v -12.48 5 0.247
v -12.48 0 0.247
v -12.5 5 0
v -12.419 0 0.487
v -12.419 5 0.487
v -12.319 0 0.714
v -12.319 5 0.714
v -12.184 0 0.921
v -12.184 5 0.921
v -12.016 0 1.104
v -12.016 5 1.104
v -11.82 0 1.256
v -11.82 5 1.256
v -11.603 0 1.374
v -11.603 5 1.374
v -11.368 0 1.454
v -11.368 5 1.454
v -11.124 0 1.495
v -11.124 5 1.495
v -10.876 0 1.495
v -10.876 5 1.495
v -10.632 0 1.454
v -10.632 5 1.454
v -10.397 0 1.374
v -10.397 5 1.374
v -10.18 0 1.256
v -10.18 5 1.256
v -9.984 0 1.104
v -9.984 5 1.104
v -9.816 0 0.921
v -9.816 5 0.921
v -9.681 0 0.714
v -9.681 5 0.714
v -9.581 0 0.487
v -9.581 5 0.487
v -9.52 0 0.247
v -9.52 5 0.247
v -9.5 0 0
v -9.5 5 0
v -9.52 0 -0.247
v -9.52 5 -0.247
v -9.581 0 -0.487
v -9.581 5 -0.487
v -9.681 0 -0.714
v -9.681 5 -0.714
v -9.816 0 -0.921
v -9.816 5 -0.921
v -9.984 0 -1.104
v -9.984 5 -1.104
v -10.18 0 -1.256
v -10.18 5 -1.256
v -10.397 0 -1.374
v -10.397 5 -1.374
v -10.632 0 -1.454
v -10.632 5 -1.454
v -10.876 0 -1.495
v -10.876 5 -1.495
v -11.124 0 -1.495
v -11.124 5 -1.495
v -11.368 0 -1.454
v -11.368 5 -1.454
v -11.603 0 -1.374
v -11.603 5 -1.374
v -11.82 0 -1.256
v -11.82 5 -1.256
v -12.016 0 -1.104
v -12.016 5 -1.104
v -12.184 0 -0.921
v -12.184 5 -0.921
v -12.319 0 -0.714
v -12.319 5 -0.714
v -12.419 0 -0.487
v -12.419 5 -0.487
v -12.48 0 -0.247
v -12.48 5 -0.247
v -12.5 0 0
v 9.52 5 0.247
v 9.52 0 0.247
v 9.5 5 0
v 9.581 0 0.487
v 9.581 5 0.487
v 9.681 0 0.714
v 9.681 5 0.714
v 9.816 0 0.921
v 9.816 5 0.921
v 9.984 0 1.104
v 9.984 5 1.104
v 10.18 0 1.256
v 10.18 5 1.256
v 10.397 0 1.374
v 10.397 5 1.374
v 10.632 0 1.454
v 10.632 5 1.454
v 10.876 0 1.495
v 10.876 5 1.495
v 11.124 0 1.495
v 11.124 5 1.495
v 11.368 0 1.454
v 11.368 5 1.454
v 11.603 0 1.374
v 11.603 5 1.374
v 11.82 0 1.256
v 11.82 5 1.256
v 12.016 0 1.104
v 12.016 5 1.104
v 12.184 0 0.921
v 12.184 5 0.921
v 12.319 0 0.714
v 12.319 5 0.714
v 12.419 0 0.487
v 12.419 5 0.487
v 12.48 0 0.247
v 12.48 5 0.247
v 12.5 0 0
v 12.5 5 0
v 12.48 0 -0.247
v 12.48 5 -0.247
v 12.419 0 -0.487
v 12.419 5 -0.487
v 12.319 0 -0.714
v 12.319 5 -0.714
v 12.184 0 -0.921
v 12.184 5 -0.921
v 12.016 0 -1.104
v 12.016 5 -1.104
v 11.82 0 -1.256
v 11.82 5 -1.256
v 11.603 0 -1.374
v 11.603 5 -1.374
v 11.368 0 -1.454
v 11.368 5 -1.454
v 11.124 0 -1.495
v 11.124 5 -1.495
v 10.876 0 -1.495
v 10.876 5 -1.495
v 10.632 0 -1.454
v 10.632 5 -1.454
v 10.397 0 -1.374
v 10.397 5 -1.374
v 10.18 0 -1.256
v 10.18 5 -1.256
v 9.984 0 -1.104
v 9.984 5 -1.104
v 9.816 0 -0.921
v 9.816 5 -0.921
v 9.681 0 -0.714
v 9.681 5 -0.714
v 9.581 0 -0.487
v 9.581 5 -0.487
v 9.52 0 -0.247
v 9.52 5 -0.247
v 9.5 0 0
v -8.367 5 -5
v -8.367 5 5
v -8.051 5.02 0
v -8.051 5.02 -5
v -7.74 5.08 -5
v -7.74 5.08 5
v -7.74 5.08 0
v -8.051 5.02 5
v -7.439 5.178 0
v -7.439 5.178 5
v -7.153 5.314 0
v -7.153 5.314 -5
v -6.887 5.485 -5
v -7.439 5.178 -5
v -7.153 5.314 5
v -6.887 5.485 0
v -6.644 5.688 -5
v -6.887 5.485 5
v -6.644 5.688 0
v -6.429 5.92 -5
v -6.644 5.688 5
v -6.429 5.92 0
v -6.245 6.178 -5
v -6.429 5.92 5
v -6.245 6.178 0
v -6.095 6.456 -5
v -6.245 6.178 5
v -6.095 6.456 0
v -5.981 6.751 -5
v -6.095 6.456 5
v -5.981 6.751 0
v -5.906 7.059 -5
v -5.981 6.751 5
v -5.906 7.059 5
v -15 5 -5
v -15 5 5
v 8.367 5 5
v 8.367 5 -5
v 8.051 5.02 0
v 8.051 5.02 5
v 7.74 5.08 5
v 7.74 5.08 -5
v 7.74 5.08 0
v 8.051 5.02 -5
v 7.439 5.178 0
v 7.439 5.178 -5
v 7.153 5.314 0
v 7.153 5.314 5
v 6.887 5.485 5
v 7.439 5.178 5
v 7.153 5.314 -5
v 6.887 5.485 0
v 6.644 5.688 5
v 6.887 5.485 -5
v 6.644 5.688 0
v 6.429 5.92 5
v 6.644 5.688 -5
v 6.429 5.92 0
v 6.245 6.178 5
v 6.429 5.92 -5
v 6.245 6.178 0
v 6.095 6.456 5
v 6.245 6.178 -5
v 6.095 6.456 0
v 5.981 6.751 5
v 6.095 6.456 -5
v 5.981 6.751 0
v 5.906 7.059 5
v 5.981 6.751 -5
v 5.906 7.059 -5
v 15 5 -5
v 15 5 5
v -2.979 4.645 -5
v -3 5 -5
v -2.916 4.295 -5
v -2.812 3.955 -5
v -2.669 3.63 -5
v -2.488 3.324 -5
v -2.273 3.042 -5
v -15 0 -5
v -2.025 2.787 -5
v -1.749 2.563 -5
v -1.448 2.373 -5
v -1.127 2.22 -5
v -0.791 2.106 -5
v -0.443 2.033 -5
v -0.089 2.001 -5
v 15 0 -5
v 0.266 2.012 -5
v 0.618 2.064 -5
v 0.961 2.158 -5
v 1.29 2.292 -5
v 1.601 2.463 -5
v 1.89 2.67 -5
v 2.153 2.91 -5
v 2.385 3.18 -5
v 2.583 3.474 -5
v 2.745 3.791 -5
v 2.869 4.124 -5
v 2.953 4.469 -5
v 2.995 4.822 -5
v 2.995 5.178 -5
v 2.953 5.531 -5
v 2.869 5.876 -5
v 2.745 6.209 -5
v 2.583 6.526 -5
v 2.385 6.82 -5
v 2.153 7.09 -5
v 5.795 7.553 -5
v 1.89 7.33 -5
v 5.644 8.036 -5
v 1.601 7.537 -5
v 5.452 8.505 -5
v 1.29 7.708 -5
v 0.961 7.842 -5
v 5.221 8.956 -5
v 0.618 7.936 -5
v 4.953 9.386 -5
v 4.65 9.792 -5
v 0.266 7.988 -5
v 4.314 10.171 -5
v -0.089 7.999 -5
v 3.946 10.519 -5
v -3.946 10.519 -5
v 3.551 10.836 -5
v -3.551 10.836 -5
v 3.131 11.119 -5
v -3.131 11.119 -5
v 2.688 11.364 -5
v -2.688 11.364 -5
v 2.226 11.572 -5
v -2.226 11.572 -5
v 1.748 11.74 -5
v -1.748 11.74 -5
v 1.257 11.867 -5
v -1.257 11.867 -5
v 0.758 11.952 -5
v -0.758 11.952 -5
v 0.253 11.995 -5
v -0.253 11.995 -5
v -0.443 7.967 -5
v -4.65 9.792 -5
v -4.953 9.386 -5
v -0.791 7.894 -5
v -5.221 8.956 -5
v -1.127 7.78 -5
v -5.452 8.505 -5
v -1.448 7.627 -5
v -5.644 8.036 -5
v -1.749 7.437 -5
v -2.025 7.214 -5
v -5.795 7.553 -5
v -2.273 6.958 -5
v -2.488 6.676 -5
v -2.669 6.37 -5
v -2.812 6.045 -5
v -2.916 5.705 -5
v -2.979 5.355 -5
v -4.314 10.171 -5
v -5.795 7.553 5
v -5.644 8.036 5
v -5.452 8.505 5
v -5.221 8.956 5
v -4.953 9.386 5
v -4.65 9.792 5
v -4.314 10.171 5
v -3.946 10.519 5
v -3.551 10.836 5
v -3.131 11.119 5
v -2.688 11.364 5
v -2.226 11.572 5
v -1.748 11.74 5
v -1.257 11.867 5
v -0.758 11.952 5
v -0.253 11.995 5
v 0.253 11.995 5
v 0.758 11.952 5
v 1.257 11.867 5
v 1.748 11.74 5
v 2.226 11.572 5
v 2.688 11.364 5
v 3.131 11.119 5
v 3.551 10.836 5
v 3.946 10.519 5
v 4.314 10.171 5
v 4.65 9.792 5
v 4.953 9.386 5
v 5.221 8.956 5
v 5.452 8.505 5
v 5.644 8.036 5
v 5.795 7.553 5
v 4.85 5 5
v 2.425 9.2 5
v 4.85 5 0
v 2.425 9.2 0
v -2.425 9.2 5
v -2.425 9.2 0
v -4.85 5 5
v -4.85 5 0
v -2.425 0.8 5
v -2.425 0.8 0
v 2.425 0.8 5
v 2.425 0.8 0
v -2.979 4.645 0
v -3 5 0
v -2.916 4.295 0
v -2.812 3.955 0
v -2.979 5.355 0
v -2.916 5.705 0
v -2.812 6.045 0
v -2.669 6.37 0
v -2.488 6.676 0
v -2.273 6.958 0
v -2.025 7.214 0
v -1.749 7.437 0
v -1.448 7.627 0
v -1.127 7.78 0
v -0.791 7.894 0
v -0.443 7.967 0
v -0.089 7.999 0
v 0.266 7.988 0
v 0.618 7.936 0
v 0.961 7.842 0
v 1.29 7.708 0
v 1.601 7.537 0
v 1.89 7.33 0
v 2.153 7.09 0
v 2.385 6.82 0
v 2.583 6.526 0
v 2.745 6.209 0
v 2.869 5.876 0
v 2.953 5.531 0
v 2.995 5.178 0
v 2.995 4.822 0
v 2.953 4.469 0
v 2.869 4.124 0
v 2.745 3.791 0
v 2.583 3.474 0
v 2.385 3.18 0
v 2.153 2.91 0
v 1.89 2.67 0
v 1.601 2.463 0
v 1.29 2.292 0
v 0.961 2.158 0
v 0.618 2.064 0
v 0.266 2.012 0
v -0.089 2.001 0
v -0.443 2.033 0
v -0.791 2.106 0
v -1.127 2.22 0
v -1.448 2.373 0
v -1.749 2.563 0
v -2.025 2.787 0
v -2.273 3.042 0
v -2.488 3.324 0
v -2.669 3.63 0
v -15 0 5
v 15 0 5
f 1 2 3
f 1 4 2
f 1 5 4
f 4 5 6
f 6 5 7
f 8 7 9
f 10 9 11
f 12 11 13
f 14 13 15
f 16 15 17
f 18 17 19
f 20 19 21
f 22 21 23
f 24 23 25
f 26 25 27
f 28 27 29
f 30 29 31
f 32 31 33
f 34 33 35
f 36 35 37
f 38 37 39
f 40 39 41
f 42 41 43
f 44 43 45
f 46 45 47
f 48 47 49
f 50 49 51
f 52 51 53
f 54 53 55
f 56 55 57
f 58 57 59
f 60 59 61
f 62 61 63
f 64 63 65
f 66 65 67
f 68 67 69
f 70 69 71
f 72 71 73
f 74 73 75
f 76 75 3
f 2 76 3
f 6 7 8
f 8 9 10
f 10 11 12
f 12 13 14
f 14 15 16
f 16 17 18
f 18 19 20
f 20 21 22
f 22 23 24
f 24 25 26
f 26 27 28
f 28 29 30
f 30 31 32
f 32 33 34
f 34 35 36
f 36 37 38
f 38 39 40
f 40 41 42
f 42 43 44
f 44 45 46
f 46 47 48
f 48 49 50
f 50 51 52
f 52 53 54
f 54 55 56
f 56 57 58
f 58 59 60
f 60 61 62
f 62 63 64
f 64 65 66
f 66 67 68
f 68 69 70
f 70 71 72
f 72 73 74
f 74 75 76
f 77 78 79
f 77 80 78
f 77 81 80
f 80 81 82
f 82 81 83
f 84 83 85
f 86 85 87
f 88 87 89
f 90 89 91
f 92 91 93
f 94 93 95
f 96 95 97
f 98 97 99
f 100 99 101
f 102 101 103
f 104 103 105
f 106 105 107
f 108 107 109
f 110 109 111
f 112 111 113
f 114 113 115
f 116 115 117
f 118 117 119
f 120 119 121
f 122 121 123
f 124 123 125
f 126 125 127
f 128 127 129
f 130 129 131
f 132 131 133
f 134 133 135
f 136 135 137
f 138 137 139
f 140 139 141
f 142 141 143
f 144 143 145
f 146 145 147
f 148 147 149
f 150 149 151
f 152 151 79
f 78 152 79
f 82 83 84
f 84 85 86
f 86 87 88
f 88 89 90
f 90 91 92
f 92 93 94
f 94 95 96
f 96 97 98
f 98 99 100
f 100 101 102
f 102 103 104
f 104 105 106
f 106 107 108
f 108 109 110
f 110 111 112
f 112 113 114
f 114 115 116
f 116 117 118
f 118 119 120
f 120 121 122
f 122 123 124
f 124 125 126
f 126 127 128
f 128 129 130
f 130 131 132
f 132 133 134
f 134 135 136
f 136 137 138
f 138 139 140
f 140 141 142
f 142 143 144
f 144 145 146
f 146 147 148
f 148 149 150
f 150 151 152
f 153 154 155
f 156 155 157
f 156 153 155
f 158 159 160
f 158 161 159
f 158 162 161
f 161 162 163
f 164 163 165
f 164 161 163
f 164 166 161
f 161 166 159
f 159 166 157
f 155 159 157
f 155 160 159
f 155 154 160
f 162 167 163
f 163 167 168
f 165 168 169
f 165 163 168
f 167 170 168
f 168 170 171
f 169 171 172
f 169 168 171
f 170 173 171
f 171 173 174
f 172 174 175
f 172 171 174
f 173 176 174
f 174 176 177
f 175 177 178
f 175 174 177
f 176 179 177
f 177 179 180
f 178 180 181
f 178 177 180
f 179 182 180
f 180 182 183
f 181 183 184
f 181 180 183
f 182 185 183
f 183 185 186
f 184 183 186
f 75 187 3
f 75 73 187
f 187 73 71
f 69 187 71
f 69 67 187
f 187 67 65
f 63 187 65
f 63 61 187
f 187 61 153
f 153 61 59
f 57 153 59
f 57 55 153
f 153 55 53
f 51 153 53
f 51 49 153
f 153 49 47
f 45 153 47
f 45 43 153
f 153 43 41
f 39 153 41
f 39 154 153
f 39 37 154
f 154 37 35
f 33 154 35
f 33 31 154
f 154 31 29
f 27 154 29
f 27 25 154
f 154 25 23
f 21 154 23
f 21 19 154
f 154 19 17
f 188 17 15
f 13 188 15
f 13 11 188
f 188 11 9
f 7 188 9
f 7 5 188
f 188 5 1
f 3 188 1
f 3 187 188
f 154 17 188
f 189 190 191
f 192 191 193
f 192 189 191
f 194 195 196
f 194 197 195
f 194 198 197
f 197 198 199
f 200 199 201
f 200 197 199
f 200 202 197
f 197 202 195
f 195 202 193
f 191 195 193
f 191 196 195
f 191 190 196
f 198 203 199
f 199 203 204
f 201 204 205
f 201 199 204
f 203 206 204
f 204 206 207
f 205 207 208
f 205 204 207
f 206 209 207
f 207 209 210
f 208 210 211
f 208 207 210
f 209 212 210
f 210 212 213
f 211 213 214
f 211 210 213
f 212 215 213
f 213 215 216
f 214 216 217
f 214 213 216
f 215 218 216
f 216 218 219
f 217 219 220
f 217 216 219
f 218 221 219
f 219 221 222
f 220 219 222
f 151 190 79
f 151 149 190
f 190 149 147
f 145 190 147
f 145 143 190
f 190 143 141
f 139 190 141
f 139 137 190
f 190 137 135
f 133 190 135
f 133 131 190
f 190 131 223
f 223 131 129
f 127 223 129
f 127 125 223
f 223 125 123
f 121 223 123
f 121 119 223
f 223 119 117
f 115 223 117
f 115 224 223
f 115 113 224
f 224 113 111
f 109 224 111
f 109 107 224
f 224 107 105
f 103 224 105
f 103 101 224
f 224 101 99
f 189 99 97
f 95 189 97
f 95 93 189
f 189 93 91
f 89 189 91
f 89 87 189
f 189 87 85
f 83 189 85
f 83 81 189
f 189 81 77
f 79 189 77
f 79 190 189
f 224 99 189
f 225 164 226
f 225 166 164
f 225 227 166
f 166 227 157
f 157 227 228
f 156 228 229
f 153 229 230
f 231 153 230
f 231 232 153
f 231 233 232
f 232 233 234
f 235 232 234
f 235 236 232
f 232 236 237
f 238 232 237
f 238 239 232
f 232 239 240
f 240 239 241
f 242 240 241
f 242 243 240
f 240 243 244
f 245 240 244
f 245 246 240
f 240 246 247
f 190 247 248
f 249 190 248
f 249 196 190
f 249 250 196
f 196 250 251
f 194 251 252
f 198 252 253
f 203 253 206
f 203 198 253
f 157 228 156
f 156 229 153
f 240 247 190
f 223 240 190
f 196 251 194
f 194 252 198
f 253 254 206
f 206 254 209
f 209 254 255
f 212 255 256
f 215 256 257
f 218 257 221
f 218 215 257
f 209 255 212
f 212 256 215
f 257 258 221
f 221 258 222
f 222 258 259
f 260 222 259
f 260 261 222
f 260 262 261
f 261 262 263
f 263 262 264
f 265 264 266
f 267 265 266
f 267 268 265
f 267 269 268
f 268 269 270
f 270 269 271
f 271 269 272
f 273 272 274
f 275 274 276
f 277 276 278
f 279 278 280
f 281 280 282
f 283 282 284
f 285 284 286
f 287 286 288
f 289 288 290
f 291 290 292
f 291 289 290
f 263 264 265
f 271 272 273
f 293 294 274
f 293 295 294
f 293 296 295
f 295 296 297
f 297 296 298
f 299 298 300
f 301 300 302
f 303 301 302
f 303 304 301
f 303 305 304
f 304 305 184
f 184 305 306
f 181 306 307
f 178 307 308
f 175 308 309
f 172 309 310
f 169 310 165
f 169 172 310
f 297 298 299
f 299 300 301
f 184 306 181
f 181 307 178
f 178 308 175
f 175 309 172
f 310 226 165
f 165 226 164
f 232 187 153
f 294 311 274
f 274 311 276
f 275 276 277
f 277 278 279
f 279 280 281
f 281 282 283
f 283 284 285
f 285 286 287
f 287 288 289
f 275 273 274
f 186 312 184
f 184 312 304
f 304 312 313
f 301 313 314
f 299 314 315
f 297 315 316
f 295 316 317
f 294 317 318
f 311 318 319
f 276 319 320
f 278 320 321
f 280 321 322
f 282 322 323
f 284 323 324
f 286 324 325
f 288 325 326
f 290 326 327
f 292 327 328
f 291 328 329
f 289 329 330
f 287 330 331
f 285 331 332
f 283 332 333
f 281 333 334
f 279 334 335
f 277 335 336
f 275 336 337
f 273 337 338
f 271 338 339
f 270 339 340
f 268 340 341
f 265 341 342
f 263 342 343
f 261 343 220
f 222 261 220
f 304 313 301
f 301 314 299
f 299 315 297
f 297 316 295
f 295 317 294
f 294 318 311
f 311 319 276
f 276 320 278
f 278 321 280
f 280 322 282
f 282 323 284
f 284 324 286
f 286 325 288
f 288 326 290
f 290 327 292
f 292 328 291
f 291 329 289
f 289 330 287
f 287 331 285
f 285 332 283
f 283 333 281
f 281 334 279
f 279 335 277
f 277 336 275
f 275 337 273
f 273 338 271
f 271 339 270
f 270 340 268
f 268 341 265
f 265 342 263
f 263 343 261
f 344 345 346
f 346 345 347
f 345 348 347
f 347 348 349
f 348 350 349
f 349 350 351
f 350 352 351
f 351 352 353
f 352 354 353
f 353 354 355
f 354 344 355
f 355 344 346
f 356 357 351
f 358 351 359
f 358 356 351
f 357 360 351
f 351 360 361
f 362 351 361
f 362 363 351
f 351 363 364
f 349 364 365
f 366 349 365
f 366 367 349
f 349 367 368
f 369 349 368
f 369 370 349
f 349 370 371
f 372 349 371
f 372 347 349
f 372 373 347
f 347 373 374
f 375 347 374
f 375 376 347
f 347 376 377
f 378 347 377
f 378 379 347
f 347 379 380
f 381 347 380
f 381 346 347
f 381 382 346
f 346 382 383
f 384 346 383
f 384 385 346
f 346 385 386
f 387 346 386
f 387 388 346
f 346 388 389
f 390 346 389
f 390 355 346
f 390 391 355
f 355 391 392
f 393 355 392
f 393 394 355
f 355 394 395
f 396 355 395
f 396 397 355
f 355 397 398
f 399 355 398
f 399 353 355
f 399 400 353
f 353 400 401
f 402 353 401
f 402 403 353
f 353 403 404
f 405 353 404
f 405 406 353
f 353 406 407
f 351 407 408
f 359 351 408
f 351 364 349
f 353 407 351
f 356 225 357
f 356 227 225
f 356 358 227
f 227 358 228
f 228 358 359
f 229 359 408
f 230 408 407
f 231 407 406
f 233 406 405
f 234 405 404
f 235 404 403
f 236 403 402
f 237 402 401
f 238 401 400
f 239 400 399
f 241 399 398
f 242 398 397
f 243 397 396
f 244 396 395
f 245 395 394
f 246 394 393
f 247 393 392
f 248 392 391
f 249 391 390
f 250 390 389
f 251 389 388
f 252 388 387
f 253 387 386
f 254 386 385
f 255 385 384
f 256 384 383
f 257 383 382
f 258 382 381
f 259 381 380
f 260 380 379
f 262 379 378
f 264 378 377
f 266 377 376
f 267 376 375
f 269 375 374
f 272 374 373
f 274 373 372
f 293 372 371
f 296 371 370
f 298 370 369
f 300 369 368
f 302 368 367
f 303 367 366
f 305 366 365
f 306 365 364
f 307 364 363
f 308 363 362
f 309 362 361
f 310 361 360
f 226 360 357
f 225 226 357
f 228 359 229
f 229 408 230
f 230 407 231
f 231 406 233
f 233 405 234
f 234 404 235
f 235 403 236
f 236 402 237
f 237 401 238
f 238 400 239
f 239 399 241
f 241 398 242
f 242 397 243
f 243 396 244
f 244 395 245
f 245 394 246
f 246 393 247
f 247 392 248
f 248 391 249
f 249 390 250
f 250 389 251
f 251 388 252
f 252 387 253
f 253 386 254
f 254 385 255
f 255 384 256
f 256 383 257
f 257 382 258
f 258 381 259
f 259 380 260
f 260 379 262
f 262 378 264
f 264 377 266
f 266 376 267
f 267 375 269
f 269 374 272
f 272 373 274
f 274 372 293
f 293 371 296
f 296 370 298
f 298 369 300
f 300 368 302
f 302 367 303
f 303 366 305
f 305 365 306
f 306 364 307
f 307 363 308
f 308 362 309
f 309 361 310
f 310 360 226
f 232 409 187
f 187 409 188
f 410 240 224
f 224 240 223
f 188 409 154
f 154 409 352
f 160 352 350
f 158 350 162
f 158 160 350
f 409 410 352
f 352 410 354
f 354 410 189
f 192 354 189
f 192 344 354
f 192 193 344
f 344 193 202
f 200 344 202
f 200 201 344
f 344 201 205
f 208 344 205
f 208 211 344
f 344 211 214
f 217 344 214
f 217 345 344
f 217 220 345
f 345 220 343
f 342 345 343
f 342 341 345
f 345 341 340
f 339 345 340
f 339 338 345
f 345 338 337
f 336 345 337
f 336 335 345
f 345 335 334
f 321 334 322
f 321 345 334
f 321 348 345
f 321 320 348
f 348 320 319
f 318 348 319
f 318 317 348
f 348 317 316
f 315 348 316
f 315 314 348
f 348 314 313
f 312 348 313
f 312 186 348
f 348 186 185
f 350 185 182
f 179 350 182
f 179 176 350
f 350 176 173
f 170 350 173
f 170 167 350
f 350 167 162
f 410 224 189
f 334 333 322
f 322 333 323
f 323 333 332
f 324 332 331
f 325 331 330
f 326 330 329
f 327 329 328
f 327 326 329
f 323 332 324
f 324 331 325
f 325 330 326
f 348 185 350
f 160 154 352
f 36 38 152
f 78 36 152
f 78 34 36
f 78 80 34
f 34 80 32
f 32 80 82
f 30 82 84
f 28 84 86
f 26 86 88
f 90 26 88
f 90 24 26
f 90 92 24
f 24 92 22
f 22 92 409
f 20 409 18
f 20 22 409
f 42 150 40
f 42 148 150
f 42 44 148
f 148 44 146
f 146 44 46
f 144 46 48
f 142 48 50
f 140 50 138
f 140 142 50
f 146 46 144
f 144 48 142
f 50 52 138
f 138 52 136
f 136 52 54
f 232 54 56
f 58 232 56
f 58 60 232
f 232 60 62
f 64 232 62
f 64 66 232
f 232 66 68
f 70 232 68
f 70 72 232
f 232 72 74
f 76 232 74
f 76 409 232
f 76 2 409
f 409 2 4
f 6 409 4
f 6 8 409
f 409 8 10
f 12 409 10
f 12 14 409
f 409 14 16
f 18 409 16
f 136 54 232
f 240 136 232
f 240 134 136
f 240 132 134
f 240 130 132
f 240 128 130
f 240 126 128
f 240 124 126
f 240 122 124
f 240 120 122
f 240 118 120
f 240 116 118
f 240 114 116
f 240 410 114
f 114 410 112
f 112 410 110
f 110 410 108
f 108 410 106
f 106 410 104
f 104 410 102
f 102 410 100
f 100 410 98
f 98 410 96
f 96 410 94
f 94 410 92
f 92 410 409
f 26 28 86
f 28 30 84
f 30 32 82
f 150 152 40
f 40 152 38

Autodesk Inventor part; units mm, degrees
ref_plane "YZ Plane" through (0, 0, 0) normal (1, 0, 0) x (0, 1, 0)
ref_plane "XZ Plane" through (0, 0, 0) normal (0, 1, 0) x (-1, 0, 0)
ref_plane "XY Plane" through (0, 0, 0) normal (0, 0, 1) x (1, 0, 0)
sketch "Sketch1" plane through (0, 0, 0) normal (0, 1, 0) x (-1, 0, 0)
  line L0 (15, 5) -> (-15, 5)
  line L1 (-15, 5) -> (-15, -5)
  line L2 (-15, -5) -> (15, -5)
  line L3 (15, -5) -> (15, 5)
  point P0 (0, 0)
  point P1 (15, 0)
  point P2 (0, 5)
  dimension "d0" = 30
  dimension "d1" = 10
extrude "Extrusion1" add sketch "Sketch1" along normal blind 5
sketch "Sketch3" plane through (0, 5, 0) normal (0, 1, 0) x (1, 0, 0)
  line L0 (-15, -5) -> (15, -5) projected
  line L1 (-6, 5) -> (6, 5)
  line L2 (6, 5) -> (6, -5)
  line L3 (6, -5) -> (-6, -5)
  line L4 (-6, -5) -> (-6, 5)
  line L5 (15, 5) -> (-15, 5) projected
  point P0 (0, 0)
  point P1 (0, 5)
  dimension "d13" = 12
  dimension "d14" = 6
extrude "Extrusion2" add sketch "Sketch3" along normal blind 7
sketch "Sketch4" plane through (-15, 0, 5) normal (0, 0, 1) x (1, 0, 0)
  line L0 (9, 12) -> (21, 12) projected
  line L1 (9, 5) -> (9, 12) projected
  line L2 (0, 5) -> (9, 5) projected
  line L3 (0, 0) -> (30, 0) projected
  point P0 (15, 0)
  point P1 (15, 5)
  dimension "d18" = 6
  dimension "d45" = 5
hole "Hole2" at (0, 5, 5) direction (0, 0, -1) diameter 6 end through all
sketch "Sketch5" plane through (-15, 0, 5) normal (0, 0, 1) x (1, 0, 0)
  line L0 (9, 12) -> (21, 12) projected
  line L1 (21, 5) -> (21, 12) projected
  line L2 (0, 5) -> (9, 5) projected
  line L3 (0, 0) -> (30, 0) projected
  line L4 (19.8497, 5) -> (17.4249, 0.8)
  line L5 (17.4249, 0.8) -> (12.5751, 0.8)
  line L6 (12.5751, 0.8) -> (10.1503, 5)
  line L7 (10.1503, 5) -> (12.5751, 9.2)
  line L8 (12.5751, 9.2) -> (17.4249, 9.2)
  line L9 (17.4249, 9.2) -> (19.8497, 5)
  point P0 (15, 0)
  point P1 (15, 5)
  point P2 (13.175, 20)
  point P3 (16.825, 20)
  point P4 (20, 13.175)
  point P5 (20, 16.825)
  point P6 (15, 5)
  dimension "d46" = 5
  dimension "d47" = 8.4
  dimension "d48" = 6
extrude "Extrusion3" cut sketch "Sketch5" against normal blind 5
fillet "Fillet2" radius 6 2 edges at (-6, 12, 0) (6, 12, 0)
fillet "Fillet3" radius 2.5 2 edges at (6, 5, 0) (-6, 5, 0)
sketch "Sketch6" plane through (0, 0, 0) normal (0, -1, 0) x (1, 0, 0)
  line L0 (-15, -5) -> (-15, 5) projected
  line L1 (15, 5) -> (15, -5) projected
  point P0 (0, 0)
  point P1 (-11, 0)
  point P2 (11, 0)
  dimension "d33" = 4
  dimension "d34" = 4
hole "Hole3" at (-11, 0, 0) at (11, 0, 0) direction (0, 1, 0) diameter 3 end through all
equation "\"d14\" = 0.5 * d13"
equation "\"d18\" = d17"
equation "\"d46\" = d45"
equation "\"d48\" = 0.5 * d13"
equation "\"d34\" = d33"
equation "\"d17\" = 6"
properties part number "motor_bracket"
